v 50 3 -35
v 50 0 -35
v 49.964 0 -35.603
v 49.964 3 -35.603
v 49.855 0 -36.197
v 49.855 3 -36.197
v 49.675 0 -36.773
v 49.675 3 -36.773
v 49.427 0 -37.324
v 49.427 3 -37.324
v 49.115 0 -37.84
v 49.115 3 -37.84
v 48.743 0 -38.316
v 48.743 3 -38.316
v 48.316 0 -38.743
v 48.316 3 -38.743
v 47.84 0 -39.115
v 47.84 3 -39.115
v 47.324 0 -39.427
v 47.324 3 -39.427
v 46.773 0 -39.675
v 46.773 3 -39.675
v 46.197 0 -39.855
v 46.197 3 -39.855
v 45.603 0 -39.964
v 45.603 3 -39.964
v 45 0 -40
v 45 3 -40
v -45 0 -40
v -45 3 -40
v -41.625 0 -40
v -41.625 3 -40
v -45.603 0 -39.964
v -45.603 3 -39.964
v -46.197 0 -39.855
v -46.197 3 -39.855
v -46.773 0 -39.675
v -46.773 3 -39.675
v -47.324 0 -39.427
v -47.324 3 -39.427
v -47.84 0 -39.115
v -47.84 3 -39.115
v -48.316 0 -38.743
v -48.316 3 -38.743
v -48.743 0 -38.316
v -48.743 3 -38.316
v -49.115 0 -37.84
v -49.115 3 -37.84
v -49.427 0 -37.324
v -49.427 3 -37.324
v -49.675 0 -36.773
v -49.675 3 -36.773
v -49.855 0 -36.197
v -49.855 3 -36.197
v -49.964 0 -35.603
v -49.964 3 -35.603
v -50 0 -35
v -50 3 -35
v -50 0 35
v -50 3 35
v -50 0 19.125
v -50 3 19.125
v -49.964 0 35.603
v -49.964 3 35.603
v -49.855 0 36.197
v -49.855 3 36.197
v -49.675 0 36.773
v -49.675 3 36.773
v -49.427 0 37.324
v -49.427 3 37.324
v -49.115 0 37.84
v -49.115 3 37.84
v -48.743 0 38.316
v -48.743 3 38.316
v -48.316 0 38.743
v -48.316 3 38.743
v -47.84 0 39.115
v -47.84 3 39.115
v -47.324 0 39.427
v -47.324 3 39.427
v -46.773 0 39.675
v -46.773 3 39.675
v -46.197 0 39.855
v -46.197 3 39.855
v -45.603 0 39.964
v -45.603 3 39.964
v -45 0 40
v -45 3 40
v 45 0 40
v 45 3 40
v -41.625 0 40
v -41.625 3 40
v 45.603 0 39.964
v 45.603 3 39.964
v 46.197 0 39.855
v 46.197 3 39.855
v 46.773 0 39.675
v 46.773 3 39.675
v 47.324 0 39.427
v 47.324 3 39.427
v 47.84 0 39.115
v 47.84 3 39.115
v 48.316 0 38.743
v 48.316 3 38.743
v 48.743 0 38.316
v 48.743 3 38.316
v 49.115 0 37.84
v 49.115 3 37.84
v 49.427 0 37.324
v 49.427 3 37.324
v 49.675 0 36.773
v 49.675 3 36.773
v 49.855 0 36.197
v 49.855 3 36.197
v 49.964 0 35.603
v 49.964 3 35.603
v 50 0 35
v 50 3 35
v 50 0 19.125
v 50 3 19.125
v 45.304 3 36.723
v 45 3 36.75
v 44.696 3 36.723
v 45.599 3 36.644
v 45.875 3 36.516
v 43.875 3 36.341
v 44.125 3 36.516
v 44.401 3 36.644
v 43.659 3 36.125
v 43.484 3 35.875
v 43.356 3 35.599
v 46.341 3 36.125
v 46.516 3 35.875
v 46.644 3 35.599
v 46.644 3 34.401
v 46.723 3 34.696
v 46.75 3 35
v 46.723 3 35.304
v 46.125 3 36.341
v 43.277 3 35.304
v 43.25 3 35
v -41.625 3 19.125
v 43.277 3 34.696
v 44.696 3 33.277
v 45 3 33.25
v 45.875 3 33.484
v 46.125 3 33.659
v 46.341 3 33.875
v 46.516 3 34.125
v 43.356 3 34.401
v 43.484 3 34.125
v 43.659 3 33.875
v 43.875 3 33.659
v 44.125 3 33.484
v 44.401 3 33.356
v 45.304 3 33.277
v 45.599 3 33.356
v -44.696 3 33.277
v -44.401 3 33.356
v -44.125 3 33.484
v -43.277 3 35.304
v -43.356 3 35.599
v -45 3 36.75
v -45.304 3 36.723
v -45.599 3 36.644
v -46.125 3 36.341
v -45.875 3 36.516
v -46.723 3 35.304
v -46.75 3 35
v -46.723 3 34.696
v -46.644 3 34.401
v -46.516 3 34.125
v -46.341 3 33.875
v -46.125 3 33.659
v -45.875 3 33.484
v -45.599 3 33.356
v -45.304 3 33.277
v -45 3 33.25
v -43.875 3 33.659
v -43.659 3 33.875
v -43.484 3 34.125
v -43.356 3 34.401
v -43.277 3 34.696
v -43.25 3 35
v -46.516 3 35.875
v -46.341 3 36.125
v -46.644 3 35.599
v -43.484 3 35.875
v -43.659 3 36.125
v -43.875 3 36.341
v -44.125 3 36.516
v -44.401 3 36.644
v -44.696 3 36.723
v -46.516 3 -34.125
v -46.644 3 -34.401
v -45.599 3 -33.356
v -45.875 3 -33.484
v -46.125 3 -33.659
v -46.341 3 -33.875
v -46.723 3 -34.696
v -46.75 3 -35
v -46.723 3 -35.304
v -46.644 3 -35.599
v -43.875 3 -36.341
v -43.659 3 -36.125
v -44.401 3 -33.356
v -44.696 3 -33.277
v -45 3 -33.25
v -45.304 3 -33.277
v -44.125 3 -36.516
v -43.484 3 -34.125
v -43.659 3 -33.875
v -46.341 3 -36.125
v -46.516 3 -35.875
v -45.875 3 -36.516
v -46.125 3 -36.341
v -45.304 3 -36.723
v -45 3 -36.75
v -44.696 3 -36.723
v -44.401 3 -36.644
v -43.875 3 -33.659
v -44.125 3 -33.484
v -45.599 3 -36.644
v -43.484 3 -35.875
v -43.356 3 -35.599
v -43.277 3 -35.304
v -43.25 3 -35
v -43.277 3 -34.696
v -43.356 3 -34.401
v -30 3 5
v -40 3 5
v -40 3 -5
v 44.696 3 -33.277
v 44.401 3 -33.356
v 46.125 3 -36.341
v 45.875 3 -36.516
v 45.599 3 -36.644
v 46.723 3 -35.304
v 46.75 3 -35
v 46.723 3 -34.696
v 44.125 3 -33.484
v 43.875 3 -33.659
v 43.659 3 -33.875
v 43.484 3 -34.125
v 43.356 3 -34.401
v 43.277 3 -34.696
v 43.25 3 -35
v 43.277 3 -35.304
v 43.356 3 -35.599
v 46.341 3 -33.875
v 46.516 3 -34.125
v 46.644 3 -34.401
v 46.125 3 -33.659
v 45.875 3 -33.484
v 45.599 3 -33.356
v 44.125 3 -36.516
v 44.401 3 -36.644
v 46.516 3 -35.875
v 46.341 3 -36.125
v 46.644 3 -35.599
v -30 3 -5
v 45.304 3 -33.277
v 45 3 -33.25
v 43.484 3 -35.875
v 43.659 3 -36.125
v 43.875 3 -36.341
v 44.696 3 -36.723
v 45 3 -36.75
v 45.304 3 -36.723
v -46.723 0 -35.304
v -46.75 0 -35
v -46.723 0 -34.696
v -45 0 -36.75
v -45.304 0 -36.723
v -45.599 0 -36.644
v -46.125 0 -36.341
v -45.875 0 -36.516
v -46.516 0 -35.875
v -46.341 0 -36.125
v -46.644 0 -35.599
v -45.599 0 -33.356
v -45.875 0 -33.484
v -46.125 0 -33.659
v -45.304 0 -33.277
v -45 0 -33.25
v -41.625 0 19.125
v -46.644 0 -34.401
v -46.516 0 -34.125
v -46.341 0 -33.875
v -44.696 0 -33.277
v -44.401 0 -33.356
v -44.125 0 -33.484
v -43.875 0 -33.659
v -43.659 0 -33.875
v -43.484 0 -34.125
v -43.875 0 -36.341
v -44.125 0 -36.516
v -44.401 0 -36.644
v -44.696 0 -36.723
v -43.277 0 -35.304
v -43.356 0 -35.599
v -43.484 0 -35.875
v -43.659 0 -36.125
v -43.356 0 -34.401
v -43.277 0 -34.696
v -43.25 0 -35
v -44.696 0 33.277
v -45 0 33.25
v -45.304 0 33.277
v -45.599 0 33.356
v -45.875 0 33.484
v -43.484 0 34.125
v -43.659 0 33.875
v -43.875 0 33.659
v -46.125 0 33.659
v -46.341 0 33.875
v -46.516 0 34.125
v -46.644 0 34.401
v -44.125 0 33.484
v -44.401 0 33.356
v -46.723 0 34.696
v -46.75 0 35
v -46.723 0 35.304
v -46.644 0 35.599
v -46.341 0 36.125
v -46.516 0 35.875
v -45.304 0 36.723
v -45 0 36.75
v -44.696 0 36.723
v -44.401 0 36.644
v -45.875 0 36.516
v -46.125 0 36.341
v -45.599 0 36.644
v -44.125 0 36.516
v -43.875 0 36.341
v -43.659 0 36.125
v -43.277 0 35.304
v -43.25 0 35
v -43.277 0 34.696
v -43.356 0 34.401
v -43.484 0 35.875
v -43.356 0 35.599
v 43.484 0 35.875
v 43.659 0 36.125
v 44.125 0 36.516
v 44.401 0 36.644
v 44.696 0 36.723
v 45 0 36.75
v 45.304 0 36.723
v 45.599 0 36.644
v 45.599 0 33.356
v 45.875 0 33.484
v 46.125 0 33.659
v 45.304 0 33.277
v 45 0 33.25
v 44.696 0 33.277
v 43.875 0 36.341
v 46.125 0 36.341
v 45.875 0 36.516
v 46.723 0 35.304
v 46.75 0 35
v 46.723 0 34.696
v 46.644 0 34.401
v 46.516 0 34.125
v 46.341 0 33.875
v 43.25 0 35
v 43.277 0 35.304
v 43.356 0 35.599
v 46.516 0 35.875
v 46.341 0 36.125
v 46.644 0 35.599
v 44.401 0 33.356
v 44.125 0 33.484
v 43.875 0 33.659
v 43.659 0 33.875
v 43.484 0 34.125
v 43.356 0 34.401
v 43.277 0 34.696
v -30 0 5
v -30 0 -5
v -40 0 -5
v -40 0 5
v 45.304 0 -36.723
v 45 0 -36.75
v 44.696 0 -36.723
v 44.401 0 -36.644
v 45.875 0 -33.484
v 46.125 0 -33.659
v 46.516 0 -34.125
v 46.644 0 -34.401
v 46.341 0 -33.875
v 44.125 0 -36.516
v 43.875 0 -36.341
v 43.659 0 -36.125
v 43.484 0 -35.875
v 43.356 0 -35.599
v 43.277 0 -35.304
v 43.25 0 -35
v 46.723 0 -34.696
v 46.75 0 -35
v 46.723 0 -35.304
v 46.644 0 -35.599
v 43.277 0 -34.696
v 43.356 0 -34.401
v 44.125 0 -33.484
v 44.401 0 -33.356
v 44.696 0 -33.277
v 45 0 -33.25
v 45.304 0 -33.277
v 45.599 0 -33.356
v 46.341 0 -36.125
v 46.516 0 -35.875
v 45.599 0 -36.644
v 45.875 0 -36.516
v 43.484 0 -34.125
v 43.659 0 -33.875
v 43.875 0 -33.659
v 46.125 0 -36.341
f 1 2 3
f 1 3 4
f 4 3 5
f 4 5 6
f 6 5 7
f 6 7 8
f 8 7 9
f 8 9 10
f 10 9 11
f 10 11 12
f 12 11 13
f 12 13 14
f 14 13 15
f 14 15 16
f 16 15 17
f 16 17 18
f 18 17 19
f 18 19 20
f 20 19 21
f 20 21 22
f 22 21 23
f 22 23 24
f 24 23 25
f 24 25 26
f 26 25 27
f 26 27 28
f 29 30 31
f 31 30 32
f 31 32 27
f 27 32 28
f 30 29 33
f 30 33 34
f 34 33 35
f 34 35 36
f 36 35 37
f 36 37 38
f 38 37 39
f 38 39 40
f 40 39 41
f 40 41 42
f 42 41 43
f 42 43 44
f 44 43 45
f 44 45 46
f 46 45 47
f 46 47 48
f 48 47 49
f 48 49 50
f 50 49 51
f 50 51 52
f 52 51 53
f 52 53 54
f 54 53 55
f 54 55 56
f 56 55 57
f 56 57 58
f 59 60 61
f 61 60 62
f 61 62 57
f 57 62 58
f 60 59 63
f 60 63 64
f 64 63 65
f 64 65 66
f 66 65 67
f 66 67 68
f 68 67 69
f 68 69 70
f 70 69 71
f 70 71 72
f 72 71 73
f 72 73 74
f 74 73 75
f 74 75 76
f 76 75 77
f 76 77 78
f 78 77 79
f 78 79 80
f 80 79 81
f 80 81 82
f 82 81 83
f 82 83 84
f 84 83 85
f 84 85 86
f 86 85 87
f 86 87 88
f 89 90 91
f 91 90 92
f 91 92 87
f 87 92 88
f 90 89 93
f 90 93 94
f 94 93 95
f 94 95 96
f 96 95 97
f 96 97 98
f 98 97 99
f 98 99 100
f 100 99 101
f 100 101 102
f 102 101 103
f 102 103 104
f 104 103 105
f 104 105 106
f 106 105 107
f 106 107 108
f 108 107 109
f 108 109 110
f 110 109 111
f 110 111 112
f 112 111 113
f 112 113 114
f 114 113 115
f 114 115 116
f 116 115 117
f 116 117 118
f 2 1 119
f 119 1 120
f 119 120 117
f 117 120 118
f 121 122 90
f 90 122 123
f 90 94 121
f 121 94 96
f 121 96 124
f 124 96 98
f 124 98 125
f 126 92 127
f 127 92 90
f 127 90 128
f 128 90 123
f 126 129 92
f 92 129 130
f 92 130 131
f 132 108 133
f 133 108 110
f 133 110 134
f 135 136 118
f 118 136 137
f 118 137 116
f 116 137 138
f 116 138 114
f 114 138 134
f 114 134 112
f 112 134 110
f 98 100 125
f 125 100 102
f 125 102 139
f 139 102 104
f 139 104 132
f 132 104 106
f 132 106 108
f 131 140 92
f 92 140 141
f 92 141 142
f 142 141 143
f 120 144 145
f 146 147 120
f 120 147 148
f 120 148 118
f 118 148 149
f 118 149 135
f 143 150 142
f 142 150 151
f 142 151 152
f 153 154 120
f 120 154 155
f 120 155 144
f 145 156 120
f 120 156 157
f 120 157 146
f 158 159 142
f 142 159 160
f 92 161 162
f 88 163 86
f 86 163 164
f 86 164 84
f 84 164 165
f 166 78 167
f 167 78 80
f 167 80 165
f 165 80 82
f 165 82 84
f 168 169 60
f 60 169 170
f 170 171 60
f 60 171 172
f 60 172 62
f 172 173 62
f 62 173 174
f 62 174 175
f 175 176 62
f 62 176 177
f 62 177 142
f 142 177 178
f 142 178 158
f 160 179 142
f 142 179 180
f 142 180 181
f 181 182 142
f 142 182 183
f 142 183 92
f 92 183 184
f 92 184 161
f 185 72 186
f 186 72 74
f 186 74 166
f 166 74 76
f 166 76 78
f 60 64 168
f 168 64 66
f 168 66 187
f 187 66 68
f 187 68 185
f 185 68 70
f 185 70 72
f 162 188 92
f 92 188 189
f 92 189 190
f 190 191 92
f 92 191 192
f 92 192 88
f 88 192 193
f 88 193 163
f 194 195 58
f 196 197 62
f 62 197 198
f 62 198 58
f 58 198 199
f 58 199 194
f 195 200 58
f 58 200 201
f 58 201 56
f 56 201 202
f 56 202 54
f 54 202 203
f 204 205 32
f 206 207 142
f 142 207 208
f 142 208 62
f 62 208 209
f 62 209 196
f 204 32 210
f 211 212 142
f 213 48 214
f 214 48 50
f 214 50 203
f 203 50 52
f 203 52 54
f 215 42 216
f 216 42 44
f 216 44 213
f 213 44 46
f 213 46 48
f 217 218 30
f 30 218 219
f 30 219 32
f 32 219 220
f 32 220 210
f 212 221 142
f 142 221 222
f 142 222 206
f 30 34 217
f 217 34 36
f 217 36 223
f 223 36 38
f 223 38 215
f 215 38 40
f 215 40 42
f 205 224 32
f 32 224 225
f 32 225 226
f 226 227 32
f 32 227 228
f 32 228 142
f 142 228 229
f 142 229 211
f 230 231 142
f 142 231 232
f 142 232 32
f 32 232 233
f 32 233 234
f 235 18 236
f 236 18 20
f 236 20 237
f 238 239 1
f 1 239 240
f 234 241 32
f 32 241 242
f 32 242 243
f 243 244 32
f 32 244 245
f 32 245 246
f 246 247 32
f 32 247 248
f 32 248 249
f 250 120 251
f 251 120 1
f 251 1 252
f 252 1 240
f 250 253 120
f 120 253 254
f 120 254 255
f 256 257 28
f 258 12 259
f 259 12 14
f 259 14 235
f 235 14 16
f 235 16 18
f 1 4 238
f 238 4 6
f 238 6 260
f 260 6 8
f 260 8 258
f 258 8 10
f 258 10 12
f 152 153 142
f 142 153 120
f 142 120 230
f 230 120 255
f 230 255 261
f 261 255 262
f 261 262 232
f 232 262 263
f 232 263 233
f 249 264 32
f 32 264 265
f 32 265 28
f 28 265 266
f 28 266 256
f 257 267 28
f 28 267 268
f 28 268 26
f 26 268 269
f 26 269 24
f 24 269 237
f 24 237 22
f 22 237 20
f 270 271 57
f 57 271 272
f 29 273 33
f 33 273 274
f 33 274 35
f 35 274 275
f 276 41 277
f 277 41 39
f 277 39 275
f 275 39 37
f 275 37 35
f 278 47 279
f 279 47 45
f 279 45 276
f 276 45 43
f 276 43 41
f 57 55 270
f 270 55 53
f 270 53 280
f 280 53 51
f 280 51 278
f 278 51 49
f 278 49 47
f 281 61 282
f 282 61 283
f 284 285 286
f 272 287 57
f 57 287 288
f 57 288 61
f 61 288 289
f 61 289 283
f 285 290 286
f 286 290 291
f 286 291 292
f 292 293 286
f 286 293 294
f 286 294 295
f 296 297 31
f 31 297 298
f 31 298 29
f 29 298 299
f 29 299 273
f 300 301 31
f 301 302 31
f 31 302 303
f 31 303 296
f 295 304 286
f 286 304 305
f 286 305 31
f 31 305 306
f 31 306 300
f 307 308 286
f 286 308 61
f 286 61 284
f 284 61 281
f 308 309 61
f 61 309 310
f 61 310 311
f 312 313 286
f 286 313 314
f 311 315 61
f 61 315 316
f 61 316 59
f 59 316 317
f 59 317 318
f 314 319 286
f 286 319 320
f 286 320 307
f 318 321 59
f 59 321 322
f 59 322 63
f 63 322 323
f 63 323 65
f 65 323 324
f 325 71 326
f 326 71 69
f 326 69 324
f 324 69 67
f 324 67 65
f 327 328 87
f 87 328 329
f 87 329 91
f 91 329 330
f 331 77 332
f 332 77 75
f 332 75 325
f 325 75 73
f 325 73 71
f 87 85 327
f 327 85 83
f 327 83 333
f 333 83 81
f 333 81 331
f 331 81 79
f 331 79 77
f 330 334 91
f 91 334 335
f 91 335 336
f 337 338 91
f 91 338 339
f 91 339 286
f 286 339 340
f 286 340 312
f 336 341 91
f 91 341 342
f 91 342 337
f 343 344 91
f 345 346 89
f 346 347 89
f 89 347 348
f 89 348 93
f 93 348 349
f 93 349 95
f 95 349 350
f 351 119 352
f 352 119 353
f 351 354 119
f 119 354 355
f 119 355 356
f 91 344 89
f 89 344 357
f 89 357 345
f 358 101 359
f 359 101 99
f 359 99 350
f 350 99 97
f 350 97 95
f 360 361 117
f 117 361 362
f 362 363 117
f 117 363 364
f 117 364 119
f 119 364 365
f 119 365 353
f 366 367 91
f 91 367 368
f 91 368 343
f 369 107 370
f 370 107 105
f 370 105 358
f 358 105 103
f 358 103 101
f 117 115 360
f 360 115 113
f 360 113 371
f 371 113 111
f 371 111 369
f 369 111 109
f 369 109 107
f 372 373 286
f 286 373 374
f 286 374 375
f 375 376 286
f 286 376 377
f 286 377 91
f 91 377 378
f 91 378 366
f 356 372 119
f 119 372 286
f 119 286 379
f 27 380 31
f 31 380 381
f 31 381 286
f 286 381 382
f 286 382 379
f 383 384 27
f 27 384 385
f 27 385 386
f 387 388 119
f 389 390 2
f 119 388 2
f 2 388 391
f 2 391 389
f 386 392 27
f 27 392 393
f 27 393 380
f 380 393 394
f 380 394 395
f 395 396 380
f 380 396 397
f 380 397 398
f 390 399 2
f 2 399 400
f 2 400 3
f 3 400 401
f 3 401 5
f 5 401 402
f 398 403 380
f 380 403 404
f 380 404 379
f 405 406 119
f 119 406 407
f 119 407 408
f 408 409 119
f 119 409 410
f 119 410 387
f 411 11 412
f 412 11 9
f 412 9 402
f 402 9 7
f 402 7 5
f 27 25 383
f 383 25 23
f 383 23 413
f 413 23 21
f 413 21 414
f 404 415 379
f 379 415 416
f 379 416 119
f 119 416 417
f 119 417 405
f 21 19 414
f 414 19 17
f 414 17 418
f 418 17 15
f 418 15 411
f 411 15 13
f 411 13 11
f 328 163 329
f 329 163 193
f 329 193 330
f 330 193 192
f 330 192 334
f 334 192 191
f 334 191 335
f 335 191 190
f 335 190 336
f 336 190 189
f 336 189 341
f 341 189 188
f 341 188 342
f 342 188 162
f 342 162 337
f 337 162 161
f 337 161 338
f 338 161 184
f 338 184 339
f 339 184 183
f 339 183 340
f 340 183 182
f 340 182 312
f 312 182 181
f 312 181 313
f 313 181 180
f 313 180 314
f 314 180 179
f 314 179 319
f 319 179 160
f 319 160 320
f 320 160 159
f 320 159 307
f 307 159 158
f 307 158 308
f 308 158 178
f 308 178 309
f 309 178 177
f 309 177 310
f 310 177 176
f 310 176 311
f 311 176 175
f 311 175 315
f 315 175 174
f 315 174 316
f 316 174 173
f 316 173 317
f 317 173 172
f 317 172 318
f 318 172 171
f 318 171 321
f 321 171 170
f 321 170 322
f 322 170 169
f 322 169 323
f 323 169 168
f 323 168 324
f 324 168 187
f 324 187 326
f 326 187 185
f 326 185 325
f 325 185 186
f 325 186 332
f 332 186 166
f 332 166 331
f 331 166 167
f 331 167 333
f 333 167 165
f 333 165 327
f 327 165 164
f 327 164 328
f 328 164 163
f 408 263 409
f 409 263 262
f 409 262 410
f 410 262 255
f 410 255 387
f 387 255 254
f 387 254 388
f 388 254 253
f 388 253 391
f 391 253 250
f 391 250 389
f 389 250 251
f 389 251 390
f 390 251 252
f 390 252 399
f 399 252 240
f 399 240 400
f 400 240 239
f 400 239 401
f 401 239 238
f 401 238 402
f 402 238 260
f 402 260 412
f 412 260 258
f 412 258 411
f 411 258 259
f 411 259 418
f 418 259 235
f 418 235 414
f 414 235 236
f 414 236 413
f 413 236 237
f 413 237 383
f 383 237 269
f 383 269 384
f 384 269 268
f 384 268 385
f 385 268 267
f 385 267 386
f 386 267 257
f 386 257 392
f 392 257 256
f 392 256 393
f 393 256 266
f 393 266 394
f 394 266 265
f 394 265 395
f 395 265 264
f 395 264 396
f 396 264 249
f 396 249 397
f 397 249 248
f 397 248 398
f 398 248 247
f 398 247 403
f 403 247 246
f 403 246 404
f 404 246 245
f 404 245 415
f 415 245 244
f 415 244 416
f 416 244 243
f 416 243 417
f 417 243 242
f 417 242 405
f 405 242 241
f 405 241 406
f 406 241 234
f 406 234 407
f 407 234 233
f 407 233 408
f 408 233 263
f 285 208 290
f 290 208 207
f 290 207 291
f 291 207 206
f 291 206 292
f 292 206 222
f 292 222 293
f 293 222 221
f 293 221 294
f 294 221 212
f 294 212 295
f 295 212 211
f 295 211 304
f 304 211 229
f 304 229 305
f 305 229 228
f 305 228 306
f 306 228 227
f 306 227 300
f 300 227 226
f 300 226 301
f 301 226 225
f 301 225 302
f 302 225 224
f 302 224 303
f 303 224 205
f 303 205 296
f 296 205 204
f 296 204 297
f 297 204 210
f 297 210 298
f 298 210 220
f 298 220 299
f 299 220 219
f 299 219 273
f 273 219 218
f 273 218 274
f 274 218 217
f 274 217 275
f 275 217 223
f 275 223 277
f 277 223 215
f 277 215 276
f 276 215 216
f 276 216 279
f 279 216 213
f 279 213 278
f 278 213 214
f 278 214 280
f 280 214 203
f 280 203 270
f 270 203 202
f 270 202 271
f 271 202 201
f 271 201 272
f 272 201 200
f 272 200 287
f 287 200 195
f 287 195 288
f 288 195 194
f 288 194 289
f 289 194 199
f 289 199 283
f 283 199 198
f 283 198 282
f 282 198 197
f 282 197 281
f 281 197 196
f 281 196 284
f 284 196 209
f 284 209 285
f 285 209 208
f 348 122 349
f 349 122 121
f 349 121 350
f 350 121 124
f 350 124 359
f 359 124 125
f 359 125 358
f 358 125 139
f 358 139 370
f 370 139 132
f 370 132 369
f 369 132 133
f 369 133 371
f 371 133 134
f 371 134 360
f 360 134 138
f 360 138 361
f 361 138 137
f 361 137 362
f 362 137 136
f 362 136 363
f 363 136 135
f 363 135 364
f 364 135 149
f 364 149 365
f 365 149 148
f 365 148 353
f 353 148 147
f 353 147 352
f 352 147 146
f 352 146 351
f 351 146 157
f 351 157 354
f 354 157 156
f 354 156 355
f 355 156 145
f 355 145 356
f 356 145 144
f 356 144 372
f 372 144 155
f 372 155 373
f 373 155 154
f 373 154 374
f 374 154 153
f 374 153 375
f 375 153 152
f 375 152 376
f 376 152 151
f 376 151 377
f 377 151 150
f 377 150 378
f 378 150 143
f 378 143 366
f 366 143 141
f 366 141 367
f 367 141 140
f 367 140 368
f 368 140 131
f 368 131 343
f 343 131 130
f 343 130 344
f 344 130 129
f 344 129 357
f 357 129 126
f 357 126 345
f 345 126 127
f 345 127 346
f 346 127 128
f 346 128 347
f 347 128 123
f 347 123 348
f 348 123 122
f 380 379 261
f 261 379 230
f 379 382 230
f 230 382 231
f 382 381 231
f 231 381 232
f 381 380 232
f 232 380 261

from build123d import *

# Parameters (mm, degrees)
BOSS_EXTRUDE1_DEPTH  = 3
SKETCH3_R            = 1.75
CUT_EXTRUDE2_DEPTH   = 4
LPATTERN1_COUNT      = 2
LPATTERN1_PITCH      = 70
LPATTERN1_COUNT_DIR2 = 2
LPATTERN1_PITCH_DIR2 = 90
SKETCH5_W            = 10
SKETCH5_H            = 10
CUT_EXTRUDE4_DEPTH   = 4


with BuildPart() as part:
    # Sketch1 → Boss-Extrude1 (new body)
    with BuildSketch(Plane(origin=(0, 0, 0), x_dir=(1, 0, 0), z_dir=(0, 1, 0))):
        with BuildLine():
            Line((-45, 40), (45, 40))
            ThreePointArc((45, 40), (48.535533906, 38.535533906), (50, 35))
            Line((50, 35), (50, -35))
            ThreePointArc((50, -35), (48.535533906, -38.535533906), (45, -40))
            Line((45, -40), (-45, -40))
            ThreePointArc((-45, -40), (-48.535533906, -38.535533906), (-50, -35))
            Line((-50, -35), (-50, 35))
            ThreePointArc((-50, 35), (-48.535533906, 38.535533906), (-45, 40))
        make_face()
    extrude(amount=BOSS_EXTRUDE1_DEPTH)

    # Sketch3 → Cut-Extrude2 (cut, through all)
    with BuildSketch(Plane(origin=(0, 3, 0), x_dir=(1, 0, 0), z_dir=(0, 1, 0))):
        with Locations((-45, -35)):
            Circle(SKETCH3_R)
    cut_extrude2 = extrude(amount=-CUT_EXTRUDE2_DEPTH, mode=Mode.SUBTRACT)

    # LPattern1: Cut-Extrude2 2 × 2
    with Locations(*[(j * LPATTERN1_PITCH_DIR2, 0, -i * LPATTERN1_PITCH) for i in range(LPATTERN1_COUNT) for j in range(LPATTERN1_COUNT_DIR2) if (i, j) != (0, 0)]):
        add(cut_extrude2, mode=Mode.SUBTRACT)

    # Sketch5 → Cut-Extrude4 (cut, through all)
    with BuildSketch(Plane(origin=(0, 3, 0), x_dir=(1, 0, 0), z_dir=(0, 1, 0))):
        with Locations((-35, 0)):
            Rectangle(SKETCH5_W, SKETCH5_H)
    extrude(amount=-CUT_EXTRUDE4_DEPTH, mode=Mode.SUBTRACT)


solid = part.part
